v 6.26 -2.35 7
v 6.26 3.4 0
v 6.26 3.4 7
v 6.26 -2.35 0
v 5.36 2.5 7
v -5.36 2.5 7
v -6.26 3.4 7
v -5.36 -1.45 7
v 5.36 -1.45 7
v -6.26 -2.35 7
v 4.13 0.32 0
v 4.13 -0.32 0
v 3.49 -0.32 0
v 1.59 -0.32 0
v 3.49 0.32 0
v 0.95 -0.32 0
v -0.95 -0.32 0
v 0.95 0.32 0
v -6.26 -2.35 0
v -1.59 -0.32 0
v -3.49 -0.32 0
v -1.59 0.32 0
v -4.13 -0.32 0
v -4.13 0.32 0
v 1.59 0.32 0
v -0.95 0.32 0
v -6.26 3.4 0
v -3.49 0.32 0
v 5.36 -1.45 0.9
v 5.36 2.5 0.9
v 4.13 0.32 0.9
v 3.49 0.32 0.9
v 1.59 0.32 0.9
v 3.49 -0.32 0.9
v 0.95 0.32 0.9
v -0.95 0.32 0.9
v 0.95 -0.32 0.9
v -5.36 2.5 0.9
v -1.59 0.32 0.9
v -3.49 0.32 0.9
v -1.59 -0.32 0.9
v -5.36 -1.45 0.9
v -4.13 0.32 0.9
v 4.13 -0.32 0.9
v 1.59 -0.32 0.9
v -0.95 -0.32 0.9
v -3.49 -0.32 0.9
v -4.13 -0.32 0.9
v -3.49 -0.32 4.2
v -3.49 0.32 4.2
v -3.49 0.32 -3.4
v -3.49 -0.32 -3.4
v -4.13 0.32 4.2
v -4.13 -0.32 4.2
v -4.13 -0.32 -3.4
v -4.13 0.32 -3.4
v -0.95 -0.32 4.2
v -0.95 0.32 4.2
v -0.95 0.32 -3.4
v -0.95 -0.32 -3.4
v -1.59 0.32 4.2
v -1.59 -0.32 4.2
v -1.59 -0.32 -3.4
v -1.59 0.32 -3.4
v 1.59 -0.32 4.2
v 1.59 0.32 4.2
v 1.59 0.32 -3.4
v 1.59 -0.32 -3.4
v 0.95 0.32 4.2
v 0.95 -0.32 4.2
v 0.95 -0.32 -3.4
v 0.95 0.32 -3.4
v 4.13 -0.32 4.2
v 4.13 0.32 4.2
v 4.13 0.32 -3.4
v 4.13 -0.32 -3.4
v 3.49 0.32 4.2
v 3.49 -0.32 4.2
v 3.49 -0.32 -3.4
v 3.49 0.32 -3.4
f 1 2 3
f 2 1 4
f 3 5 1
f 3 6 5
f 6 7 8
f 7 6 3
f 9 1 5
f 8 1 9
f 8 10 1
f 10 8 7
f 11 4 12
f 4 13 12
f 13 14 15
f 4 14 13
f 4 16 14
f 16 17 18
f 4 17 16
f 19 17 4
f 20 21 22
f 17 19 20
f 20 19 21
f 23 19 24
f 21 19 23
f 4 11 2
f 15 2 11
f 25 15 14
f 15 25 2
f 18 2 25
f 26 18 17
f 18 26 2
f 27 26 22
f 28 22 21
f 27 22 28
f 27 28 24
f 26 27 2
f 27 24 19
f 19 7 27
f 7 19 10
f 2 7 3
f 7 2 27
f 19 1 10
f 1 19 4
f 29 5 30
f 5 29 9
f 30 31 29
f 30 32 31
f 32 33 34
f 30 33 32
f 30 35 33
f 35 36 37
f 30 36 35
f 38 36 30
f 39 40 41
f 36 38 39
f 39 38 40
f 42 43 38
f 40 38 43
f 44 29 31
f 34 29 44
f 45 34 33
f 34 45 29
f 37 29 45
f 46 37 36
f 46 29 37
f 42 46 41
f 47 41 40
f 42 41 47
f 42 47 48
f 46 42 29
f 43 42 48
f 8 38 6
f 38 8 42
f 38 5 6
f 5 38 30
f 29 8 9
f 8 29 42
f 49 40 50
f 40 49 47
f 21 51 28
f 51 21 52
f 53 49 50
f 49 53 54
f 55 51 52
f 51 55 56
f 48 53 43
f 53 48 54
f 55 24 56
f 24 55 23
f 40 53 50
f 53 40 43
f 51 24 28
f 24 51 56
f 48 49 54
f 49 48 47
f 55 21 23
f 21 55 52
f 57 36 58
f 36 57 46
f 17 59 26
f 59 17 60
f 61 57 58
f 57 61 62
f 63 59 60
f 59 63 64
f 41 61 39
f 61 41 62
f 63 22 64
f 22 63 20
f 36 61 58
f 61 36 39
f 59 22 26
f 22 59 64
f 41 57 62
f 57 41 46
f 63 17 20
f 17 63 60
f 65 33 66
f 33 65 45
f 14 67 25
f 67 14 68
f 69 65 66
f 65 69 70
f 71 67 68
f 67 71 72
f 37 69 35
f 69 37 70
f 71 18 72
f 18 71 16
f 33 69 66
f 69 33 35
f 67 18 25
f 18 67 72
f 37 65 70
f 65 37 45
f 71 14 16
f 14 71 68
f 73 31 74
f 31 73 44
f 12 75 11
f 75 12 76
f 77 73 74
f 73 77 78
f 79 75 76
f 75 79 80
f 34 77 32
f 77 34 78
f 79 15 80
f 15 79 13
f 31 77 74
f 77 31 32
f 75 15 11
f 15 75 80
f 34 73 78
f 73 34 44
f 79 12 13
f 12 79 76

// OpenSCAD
// ---------------------------------------------------------------------------
// connector.scad - "JST-XH style" 2.54 mm 4-pin board header.
//
// Rough model, same spirit as the others: the shroud outline, height and pin
// pattern are real; the latch ramp and internal detail are not modeled.
//
// Origin: center of the pin row, on the board surface.
//   Z = 0 is the PCB TOP face - the connector sits on it, pins run negative.
//   (Note this differs from esp32.scad / perfboard.scad, where Z = 0 is the
//   PCB bottom. Placing this on the perfboard means translating to Z = pb_thick.)
//   +X runs along the pin row, +Y toward the latch side.
//
// Render:  openscad -o build/connector.stl hardware/connector.scad
// ---------------------------------------------------------------------------

include <params.scad>

$fn = $preview ? 24 : 48;

// Pin 1 .. n centers along X, centered on the origin.
function xh_pin_x(i) = -xh_pin_span/2 + i*xh_pitch;

module xh_pins() {
    for (i = [0 : xh_pins-1])
        translate([xh_pin_x(i), 0, -xh_pin_below])
            cube([xh_pin_sq, xh_pin_sq, xh_pin_below + xh_body_h*0.6], center = false);
}

// Shroud: a box around the pin row, deeper on the latch side, hollowed from
// the top so the model reads as a socket rather than a solid block.
module xh_shroud() {
    wall = 0.9;
    difference() {
        translate([-xh_body_len/2, -xh_body_front, 0])
            cube([xh_body_len, xh_body_front + xh_body_back, xh_body_h]);
        translate([-xh_body_len/2 + wall, -xh_body_front + wall, wall])
            cube([xh_body_len - 2*wall,
                  xh_body_front + xh_body_back - 2*wall,
                  xh_body_h]);
    }
}

module xh_header() {
    color("#e8e8e8") xh_shroud();
    color("#c8a24a") translate([-xh_pin_sq/2, -xh_pin_sq/2, 0]) xh_pins();
}

// Drill pattern, for cutting into a carrier board.
module xh_drills(h = 10) {
    for (i = [0 : xh_pins-1])
        translate([xh_pin_x(i), 0, -h/2]) cylinder(h = h, d = xh_drill);
}

// Clearance solid including the MATED plug. Use this against a lid, not
// xh_header() - the plug is what actually collides.
module xh_mated_keepout(gap = clearance) {
    translate([0, (xh_body_back - xh_body_front)/2, xh_mated_h/2 - gap/2])
        cube([xh_body_len + 2*gap,
              xh_body_front + xh_body_back + 2*gap,
              xh_mated_h + gap], center = true);
}

// --- guards -----------------------------------------------------------------

assert(xh_pitch > 2.4 && xh_pitch < 2.6, "XH pitch should be 2.50 or 2.54");
assert(xh_drill > xh_pin_sq * 1.414,
       "drill smaller than the diagonal of the square post");
assert(xh_mated_h > xh_body_h,
       "mated height must exceed the bare header height");

xh_header();
